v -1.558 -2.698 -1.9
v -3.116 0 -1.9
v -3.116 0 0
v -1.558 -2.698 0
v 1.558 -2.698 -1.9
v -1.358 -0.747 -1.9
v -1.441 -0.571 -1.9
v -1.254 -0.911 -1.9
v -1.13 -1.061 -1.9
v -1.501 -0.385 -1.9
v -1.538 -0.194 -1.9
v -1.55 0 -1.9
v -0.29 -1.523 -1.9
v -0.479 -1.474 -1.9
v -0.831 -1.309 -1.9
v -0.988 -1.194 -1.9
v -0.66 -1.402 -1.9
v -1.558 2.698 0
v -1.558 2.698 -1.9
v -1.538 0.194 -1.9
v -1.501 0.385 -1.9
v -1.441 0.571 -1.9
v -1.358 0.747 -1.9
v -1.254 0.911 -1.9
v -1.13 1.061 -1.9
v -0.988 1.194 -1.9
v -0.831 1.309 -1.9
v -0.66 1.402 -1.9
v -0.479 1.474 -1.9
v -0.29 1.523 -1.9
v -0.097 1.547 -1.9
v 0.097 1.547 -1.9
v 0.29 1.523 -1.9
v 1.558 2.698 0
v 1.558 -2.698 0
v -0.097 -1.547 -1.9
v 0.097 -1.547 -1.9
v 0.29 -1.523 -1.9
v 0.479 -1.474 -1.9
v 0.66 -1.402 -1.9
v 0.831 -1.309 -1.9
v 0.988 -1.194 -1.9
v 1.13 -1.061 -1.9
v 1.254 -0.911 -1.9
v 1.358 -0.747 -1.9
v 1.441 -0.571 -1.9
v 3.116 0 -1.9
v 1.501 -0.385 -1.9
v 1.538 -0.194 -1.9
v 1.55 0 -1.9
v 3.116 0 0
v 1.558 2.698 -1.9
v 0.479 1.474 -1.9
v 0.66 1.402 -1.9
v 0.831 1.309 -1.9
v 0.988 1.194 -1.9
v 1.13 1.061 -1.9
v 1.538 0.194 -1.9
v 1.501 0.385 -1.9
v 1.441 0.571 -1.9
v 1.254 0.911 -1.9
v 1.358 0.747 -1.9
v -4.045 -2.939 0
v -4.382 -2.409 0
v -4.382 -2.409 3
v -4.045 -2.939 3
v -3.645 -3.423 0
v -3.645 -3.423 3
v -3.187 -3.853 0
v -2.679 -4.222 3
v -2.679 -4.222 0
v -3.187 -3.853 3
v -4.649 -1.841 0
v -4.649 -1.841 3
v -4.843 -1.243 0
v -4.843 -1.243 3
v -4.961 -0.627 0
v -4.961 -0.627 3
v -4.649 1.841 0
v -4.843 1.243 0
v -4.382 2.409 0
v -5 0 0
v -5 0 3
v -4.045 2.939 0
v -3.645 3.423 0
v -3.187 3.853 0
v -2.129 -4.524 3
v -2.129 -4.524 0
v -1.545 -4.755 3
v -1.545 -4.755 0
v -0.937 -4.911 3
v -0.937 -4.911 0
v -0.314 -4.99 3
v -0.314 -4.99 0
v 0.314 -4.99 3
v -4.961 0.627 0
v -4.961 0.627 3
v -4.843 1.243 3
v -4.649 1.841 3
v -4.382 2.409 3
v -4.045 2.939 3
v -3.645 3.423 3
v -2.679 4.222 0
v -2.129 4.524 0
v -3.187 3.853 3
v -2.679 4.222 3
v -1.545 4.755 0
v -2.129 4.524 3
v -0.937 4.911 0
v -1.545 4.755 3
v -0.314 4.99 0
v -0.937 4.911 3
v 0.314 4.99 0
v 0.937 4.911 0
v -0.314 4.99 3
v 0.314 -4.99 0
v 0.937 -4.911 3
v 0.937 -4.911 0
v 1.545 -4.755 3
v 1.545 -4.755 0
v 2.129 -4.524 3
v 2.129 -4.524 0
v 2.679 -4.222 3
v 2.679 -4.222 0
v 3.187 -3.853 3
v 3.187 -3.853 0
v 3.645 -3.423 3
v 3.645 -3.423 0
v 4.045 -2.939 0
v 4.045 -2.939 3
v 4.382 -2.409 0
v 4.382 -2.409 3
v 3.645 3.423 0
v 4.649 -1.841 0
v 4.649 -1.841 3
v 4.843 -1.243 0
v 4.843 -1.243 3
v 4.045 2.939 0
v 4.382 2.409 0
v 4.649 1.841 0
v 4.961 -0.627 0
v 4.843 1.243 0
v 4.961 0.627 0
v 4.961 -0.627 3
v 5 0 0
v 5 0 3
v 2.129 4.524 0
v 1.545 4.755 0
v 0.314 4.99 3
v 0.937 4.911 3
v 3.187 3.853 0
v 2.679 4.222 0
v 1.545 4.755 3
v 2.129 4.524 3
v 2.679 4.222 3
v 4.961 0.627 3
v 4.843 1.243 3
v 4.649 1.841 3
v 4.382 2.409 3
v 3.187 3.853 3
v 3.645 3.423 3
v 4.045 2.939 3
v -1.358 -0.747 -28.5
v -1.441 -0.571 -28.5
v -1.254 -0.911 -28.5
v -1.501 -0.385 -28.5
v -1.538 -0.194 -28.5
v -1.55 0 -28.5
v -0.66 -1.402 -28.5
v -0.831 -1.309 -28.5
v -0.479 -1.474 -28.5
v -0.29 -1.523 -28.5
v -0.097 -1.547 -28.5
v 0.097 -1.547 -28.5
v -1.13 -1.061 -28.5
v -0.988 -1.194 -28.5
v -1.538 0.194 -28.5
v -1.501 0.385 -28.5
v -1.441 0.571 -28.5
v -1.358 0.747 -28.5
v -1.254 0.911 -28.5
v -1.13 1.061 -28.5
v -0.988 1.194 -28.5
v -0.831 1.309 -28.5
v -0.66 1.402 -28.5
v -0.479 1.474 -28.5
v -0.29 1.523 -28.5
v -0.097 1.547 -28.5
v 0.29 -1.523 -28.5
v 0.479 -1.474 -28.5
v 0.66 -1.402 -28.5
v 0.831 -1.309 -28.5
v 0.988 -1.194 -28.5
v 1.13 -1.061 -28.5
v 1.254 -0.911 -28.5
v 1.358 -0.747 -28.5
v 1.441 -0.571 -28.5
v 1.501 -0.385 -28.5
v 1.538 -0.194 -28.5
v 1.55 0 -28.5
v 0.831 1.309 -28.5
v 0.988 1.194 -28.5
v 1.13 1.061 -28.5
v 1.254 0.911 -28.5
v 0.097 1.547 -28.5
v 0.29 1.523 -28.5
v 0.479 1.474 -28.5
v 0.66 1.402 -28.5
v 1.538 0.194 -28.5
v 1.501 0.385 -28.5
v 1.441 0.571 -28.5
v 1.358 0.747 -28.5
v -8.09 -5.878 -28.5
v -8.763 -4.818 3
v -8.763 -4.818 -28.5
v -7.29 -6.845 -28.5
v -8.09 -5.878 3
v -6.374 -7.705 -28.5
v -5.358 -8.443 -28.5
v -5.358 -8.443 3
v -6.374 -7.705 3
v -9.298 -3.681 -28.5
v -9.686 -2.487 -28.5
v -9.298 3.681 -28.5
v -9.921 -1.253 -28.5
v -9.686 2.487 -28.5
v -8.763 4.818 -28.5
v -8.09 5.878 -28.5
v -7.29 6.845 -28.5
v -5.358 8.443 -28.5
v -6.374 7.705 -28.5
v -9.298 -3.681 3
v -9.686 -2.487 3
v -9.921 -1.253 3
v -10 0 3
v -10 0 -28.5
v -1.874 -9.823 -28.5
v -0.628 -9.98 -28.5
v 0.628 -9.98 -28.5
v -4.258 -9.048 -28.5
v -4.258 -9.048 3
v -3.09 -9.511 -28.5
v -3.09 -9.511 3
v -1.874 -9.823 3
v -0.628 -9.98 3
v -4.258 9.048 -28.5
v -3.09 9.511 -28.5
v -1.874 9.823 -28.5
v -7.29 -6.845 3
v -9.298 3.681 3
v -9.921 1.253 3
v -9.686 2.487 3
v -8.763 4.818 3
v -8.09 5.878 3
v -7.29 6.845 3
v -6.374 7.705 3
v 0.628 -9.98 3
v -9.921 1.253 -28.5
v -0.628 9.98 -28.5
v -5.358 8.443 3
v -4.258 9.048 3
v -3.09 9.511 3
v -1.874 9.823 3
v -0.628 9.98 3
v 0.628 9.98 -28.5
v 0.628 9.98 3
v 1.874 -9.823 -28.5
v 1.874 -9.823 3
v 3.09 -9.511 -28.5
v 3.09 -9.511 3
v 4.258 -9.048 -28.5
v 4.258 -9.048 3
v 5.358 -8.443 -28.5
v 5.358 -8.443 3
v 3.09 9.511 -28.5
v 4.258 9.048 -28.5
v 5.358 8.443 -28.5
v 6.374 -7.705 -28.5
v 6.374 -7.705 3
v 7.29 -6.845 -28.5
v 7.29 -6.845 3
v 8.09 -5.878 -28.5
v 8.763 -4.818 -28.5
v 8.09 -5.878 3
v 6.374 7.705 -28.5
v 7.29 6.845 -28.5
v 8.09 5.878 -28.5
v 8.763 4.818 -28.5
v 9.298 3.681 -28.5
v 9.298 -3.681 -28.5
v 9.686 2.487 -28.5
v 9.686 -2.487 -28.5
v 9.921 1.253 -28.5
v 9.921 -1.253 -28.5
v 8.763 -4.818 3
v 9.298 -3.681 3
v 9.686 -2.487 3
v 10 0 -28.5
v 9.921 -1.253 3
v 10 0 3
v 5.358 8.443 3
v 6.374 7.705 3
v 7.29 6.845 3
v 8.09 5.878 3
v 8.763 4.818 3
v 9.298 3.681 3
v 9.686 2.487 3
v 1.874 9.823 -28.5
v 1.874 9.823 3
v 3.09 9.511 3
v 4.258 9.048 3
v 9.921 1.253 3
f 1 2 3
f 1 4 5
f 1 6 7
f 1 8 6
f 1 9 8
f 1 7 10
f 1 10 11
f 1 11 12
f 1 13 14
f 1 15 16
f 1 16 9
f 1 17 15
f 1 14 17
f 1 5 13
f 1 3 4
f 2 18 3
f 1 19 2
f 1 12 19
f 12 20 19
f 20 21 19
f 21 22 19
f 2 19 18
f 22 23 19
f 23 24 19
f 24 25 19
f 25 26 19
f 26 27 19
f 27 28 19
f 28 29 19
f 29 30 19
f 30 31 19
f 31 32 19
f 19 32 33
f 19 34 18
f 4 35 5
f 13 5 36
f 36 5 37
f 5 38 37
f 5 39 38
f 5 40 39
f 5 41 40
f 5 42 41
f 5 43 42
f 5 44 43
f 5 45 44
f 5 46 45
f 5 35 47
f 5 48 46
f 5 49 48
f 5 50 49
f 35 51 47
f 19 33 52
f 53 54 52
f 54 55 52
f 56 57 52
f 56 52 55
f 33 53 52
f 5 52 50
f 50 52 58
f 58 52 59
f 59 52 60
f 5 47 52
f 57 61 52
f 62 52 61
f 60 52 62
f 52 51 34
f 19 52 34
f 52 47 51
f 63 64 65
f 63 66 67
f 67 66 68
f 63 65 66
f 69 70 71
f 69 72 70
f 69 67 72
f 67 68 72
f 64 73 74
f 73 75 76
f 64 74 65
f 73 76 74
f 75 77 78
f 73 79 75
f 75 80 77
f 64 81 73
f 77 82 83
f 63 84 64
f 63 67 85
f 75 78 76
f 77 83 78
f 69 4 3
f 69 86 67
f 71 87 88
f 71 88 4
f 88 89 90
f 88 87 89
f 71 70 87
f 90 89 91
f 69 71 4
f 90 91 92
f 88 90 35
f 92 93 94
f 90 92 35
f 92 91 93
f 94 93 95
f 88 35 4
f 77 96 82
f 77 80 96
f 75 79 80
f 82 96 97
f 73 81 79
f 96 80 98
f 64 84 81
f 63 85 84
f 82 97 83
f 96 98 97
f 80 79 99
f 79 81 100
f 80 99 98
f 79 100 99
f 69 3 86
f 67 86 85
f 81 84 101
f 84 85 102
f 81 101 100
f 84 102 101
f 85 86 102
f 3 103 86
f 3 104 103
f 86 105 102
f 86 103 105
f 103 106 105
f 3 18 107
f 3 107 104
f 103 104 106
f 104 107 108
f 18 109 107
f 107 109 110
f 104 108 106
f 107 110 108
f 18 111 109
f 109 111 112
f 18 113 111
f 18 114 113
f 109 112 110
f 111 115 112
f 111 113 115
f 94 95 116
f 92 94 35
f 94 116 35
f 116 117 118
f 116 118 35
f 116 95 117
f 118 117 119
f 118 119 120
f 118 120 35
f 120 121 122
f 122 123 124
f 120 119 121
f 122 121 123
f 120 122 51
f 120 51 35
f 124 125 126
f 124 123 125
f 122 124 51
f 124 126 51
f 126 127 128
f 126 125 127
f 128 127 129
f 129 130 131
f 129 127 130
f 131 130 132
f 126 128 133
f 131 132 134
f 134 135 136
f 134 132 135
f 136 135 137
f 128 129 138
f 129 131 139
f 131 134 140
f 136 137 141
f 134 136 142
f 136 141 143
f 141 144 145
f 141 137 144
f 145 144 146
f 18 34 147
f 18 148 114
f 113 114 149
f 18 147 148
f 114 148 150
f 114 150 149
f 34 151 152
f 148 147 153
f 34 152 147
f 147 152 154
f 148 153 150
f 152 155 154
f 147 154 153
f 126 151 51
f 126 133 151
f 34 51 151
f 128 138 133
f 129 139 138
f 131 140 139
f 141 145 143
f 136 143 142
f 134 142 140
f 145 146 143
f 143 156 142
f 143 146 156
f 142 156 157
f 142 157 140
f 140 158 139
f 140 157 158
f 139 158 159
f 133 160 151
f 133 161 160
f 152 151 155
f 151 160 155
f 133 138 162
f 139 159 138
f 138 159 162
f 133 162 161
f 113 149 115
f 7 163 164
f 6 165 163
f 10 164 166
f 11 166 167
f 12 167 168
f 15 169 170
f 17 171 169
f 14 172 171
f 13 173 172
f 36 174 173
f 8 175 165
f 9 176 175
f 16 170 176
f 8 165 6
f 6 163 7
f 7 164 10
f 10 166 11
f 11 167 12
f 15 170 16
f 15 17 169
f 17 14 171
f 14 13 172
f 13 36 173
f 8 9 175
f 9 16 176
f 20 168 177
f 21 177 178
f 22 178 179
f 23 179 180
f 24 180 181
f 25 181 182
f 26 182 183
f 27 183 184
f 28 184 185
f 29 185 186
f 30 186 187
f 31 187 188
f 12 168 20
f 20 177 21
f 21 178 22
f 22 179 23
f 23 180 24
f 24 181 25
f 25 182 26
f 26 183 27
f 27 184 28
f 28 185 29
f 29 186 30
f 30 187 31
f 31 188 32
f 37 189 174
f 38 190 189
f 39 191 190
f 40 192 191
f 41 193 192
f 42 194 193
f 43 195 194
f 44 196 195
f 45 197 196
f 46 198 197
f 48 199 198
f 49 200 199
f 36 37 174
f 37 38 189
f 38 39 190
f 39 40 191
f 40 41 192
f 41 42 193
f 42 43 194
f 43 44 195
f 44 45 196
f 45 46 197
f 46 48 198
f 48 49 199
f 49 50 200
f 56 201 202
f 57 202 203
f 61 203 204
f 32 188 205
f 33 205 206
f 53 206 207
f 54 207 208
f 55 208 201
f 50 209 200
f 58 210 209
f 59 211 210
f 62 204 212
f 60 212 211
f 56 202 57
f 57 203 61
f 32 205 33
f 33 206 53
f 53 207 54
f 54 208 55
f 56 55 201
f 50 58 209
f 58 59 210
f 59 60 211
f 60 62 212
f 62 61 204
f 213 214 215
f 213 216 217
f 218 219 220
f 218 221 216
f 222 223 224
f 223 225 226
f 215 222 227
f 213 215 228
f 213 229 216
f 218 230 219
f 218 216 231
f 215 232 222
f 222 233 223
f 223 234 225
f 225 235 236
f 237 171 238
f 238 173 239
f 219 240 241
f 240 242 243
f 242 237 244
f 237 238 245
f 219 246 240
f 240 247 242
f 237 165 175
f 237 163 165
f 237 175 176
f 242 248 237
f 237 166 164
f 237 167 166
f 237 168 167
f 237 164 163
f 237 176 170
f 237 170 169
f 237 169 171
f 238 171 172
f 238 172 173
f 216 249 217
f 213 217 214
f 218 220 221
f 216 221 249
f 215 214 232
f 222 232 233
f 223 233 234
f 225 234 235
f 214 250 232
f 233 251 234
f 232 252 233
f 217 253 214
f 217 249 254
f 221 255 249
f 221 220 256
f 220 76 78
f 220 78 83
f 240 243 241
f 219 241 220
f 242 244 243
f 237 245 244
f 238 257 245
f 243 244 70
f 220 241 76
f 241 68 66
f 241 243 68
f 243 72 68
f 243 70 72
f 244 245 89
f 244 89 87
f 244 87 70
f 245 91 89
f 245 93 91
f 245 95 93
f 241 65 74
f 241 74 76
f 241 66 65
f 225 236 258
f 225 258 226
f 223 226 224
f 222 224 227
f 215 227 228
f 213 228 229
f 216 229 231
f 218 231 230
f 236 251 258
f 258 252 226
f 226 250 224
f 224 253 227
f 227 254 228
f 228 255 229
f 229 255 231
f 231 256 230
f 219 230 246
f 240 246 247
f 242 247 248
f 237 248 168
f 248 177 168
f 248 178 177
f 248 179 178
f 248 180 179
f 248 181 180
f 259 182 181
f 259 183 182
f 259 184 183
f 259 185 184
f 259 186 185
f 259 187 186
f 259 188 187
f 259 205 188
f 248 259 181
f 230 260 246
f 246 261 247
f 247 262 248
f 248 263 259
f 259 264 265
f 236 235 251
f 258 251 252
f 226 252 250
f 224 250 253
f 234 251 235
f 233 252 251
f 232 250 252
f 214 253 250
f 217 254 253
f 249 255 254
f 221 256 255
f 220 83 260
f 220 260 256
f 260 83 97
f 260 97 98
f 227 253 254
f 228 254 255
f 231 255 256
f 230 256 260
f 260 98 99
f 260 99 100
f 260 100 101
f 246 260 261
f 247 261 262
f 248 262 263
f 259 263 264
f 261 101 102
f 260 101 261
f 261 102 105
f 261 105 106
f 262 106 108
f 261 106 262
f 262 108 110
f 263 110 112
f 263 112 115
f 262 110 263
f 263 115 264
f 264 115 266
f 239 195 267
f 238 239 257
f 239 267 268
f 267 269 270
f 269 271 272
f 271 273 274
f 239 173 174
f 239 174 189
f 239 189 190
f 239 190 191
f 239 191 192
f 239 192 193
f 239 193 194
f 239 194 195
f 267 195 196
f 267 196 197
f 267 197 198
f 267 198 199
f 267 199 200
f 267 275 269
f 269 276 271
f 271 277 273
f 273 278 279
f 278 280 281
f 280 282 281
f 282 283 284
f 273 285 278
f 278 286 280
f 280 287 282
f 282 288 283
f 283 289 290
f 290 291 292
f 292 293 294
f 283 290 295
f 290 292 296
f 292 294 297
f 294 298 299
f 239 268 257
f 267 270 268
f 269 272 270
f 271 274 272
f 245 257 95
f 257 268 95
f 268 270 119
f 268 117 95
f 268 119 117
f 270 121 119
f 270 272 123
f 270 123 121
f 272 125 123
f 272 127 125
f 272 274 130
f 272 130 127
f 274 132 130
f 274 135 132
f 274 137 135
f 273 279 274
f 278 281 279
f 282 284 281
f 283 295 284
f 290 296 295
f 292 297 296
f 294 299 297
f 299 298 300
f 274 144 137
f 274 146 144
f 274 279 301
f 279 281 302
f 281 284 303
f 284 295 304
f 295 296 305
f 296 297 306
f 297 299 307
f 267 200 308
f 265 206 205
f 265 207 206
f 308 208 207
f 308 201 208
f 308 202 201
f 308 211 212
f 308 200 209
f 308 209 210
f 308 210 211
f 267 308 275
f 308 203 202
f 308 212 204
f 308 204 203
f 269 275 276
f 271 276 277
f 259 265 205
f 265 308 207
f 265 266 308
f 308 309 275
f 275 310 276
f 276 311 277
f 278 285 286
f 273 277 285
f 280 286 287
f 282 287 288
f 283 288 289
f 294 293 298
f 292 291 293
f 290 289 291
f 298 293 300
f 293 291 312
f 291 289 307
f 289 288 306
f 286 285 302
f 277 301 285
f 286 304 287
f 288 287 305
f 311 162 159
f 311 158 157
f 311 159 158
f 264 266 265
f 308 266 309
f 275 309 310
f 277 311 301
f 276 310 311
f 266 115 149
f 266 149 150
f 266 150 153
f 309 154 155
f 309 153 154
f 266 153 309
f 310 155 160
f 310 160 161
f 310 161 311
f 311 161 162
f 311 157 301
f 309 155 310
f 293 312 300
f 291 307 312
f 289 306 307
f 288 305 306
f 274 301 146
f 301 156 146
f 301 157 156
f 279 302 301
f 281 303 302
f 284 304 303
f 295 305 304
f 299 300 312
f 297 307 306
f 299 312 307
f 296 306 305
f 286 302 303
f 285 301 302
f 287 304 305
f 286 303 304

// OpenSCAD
$fn = 50;

difference() {
	union() {
		translate(v = [0, 0, -28.5]) {
			cylinder(h = 31.5, r = 10.0);
		}
	}
	union() {
		translate(v = [0, 0, 0]) {
			rotate(a = [0, 0, 0]) {
				difference() {
					union() {
						translate(v = [0, 0, -1.9]) {
							linear_extrude(height = 1.9) {
								polygon(points = [[3.1158, 0.0], [1.5579000000000005, 2.698361953111554], [-1.5578999999999994, 2.6983619531115544], [-3.1158, 3.815754496783323e-16], [-1.5579000000000014, -2.6983619531115535], [1.557899999999998, -2.6983619531115552]]);
							}
						}
					}
					union();
				}
			}
		}
		#cylinder(h = 3, r = 5.0);
		#translate(v = [0, 0, -100.0]) {
			cylinder(h = 200, r = 1.55);
		}
	}
}
